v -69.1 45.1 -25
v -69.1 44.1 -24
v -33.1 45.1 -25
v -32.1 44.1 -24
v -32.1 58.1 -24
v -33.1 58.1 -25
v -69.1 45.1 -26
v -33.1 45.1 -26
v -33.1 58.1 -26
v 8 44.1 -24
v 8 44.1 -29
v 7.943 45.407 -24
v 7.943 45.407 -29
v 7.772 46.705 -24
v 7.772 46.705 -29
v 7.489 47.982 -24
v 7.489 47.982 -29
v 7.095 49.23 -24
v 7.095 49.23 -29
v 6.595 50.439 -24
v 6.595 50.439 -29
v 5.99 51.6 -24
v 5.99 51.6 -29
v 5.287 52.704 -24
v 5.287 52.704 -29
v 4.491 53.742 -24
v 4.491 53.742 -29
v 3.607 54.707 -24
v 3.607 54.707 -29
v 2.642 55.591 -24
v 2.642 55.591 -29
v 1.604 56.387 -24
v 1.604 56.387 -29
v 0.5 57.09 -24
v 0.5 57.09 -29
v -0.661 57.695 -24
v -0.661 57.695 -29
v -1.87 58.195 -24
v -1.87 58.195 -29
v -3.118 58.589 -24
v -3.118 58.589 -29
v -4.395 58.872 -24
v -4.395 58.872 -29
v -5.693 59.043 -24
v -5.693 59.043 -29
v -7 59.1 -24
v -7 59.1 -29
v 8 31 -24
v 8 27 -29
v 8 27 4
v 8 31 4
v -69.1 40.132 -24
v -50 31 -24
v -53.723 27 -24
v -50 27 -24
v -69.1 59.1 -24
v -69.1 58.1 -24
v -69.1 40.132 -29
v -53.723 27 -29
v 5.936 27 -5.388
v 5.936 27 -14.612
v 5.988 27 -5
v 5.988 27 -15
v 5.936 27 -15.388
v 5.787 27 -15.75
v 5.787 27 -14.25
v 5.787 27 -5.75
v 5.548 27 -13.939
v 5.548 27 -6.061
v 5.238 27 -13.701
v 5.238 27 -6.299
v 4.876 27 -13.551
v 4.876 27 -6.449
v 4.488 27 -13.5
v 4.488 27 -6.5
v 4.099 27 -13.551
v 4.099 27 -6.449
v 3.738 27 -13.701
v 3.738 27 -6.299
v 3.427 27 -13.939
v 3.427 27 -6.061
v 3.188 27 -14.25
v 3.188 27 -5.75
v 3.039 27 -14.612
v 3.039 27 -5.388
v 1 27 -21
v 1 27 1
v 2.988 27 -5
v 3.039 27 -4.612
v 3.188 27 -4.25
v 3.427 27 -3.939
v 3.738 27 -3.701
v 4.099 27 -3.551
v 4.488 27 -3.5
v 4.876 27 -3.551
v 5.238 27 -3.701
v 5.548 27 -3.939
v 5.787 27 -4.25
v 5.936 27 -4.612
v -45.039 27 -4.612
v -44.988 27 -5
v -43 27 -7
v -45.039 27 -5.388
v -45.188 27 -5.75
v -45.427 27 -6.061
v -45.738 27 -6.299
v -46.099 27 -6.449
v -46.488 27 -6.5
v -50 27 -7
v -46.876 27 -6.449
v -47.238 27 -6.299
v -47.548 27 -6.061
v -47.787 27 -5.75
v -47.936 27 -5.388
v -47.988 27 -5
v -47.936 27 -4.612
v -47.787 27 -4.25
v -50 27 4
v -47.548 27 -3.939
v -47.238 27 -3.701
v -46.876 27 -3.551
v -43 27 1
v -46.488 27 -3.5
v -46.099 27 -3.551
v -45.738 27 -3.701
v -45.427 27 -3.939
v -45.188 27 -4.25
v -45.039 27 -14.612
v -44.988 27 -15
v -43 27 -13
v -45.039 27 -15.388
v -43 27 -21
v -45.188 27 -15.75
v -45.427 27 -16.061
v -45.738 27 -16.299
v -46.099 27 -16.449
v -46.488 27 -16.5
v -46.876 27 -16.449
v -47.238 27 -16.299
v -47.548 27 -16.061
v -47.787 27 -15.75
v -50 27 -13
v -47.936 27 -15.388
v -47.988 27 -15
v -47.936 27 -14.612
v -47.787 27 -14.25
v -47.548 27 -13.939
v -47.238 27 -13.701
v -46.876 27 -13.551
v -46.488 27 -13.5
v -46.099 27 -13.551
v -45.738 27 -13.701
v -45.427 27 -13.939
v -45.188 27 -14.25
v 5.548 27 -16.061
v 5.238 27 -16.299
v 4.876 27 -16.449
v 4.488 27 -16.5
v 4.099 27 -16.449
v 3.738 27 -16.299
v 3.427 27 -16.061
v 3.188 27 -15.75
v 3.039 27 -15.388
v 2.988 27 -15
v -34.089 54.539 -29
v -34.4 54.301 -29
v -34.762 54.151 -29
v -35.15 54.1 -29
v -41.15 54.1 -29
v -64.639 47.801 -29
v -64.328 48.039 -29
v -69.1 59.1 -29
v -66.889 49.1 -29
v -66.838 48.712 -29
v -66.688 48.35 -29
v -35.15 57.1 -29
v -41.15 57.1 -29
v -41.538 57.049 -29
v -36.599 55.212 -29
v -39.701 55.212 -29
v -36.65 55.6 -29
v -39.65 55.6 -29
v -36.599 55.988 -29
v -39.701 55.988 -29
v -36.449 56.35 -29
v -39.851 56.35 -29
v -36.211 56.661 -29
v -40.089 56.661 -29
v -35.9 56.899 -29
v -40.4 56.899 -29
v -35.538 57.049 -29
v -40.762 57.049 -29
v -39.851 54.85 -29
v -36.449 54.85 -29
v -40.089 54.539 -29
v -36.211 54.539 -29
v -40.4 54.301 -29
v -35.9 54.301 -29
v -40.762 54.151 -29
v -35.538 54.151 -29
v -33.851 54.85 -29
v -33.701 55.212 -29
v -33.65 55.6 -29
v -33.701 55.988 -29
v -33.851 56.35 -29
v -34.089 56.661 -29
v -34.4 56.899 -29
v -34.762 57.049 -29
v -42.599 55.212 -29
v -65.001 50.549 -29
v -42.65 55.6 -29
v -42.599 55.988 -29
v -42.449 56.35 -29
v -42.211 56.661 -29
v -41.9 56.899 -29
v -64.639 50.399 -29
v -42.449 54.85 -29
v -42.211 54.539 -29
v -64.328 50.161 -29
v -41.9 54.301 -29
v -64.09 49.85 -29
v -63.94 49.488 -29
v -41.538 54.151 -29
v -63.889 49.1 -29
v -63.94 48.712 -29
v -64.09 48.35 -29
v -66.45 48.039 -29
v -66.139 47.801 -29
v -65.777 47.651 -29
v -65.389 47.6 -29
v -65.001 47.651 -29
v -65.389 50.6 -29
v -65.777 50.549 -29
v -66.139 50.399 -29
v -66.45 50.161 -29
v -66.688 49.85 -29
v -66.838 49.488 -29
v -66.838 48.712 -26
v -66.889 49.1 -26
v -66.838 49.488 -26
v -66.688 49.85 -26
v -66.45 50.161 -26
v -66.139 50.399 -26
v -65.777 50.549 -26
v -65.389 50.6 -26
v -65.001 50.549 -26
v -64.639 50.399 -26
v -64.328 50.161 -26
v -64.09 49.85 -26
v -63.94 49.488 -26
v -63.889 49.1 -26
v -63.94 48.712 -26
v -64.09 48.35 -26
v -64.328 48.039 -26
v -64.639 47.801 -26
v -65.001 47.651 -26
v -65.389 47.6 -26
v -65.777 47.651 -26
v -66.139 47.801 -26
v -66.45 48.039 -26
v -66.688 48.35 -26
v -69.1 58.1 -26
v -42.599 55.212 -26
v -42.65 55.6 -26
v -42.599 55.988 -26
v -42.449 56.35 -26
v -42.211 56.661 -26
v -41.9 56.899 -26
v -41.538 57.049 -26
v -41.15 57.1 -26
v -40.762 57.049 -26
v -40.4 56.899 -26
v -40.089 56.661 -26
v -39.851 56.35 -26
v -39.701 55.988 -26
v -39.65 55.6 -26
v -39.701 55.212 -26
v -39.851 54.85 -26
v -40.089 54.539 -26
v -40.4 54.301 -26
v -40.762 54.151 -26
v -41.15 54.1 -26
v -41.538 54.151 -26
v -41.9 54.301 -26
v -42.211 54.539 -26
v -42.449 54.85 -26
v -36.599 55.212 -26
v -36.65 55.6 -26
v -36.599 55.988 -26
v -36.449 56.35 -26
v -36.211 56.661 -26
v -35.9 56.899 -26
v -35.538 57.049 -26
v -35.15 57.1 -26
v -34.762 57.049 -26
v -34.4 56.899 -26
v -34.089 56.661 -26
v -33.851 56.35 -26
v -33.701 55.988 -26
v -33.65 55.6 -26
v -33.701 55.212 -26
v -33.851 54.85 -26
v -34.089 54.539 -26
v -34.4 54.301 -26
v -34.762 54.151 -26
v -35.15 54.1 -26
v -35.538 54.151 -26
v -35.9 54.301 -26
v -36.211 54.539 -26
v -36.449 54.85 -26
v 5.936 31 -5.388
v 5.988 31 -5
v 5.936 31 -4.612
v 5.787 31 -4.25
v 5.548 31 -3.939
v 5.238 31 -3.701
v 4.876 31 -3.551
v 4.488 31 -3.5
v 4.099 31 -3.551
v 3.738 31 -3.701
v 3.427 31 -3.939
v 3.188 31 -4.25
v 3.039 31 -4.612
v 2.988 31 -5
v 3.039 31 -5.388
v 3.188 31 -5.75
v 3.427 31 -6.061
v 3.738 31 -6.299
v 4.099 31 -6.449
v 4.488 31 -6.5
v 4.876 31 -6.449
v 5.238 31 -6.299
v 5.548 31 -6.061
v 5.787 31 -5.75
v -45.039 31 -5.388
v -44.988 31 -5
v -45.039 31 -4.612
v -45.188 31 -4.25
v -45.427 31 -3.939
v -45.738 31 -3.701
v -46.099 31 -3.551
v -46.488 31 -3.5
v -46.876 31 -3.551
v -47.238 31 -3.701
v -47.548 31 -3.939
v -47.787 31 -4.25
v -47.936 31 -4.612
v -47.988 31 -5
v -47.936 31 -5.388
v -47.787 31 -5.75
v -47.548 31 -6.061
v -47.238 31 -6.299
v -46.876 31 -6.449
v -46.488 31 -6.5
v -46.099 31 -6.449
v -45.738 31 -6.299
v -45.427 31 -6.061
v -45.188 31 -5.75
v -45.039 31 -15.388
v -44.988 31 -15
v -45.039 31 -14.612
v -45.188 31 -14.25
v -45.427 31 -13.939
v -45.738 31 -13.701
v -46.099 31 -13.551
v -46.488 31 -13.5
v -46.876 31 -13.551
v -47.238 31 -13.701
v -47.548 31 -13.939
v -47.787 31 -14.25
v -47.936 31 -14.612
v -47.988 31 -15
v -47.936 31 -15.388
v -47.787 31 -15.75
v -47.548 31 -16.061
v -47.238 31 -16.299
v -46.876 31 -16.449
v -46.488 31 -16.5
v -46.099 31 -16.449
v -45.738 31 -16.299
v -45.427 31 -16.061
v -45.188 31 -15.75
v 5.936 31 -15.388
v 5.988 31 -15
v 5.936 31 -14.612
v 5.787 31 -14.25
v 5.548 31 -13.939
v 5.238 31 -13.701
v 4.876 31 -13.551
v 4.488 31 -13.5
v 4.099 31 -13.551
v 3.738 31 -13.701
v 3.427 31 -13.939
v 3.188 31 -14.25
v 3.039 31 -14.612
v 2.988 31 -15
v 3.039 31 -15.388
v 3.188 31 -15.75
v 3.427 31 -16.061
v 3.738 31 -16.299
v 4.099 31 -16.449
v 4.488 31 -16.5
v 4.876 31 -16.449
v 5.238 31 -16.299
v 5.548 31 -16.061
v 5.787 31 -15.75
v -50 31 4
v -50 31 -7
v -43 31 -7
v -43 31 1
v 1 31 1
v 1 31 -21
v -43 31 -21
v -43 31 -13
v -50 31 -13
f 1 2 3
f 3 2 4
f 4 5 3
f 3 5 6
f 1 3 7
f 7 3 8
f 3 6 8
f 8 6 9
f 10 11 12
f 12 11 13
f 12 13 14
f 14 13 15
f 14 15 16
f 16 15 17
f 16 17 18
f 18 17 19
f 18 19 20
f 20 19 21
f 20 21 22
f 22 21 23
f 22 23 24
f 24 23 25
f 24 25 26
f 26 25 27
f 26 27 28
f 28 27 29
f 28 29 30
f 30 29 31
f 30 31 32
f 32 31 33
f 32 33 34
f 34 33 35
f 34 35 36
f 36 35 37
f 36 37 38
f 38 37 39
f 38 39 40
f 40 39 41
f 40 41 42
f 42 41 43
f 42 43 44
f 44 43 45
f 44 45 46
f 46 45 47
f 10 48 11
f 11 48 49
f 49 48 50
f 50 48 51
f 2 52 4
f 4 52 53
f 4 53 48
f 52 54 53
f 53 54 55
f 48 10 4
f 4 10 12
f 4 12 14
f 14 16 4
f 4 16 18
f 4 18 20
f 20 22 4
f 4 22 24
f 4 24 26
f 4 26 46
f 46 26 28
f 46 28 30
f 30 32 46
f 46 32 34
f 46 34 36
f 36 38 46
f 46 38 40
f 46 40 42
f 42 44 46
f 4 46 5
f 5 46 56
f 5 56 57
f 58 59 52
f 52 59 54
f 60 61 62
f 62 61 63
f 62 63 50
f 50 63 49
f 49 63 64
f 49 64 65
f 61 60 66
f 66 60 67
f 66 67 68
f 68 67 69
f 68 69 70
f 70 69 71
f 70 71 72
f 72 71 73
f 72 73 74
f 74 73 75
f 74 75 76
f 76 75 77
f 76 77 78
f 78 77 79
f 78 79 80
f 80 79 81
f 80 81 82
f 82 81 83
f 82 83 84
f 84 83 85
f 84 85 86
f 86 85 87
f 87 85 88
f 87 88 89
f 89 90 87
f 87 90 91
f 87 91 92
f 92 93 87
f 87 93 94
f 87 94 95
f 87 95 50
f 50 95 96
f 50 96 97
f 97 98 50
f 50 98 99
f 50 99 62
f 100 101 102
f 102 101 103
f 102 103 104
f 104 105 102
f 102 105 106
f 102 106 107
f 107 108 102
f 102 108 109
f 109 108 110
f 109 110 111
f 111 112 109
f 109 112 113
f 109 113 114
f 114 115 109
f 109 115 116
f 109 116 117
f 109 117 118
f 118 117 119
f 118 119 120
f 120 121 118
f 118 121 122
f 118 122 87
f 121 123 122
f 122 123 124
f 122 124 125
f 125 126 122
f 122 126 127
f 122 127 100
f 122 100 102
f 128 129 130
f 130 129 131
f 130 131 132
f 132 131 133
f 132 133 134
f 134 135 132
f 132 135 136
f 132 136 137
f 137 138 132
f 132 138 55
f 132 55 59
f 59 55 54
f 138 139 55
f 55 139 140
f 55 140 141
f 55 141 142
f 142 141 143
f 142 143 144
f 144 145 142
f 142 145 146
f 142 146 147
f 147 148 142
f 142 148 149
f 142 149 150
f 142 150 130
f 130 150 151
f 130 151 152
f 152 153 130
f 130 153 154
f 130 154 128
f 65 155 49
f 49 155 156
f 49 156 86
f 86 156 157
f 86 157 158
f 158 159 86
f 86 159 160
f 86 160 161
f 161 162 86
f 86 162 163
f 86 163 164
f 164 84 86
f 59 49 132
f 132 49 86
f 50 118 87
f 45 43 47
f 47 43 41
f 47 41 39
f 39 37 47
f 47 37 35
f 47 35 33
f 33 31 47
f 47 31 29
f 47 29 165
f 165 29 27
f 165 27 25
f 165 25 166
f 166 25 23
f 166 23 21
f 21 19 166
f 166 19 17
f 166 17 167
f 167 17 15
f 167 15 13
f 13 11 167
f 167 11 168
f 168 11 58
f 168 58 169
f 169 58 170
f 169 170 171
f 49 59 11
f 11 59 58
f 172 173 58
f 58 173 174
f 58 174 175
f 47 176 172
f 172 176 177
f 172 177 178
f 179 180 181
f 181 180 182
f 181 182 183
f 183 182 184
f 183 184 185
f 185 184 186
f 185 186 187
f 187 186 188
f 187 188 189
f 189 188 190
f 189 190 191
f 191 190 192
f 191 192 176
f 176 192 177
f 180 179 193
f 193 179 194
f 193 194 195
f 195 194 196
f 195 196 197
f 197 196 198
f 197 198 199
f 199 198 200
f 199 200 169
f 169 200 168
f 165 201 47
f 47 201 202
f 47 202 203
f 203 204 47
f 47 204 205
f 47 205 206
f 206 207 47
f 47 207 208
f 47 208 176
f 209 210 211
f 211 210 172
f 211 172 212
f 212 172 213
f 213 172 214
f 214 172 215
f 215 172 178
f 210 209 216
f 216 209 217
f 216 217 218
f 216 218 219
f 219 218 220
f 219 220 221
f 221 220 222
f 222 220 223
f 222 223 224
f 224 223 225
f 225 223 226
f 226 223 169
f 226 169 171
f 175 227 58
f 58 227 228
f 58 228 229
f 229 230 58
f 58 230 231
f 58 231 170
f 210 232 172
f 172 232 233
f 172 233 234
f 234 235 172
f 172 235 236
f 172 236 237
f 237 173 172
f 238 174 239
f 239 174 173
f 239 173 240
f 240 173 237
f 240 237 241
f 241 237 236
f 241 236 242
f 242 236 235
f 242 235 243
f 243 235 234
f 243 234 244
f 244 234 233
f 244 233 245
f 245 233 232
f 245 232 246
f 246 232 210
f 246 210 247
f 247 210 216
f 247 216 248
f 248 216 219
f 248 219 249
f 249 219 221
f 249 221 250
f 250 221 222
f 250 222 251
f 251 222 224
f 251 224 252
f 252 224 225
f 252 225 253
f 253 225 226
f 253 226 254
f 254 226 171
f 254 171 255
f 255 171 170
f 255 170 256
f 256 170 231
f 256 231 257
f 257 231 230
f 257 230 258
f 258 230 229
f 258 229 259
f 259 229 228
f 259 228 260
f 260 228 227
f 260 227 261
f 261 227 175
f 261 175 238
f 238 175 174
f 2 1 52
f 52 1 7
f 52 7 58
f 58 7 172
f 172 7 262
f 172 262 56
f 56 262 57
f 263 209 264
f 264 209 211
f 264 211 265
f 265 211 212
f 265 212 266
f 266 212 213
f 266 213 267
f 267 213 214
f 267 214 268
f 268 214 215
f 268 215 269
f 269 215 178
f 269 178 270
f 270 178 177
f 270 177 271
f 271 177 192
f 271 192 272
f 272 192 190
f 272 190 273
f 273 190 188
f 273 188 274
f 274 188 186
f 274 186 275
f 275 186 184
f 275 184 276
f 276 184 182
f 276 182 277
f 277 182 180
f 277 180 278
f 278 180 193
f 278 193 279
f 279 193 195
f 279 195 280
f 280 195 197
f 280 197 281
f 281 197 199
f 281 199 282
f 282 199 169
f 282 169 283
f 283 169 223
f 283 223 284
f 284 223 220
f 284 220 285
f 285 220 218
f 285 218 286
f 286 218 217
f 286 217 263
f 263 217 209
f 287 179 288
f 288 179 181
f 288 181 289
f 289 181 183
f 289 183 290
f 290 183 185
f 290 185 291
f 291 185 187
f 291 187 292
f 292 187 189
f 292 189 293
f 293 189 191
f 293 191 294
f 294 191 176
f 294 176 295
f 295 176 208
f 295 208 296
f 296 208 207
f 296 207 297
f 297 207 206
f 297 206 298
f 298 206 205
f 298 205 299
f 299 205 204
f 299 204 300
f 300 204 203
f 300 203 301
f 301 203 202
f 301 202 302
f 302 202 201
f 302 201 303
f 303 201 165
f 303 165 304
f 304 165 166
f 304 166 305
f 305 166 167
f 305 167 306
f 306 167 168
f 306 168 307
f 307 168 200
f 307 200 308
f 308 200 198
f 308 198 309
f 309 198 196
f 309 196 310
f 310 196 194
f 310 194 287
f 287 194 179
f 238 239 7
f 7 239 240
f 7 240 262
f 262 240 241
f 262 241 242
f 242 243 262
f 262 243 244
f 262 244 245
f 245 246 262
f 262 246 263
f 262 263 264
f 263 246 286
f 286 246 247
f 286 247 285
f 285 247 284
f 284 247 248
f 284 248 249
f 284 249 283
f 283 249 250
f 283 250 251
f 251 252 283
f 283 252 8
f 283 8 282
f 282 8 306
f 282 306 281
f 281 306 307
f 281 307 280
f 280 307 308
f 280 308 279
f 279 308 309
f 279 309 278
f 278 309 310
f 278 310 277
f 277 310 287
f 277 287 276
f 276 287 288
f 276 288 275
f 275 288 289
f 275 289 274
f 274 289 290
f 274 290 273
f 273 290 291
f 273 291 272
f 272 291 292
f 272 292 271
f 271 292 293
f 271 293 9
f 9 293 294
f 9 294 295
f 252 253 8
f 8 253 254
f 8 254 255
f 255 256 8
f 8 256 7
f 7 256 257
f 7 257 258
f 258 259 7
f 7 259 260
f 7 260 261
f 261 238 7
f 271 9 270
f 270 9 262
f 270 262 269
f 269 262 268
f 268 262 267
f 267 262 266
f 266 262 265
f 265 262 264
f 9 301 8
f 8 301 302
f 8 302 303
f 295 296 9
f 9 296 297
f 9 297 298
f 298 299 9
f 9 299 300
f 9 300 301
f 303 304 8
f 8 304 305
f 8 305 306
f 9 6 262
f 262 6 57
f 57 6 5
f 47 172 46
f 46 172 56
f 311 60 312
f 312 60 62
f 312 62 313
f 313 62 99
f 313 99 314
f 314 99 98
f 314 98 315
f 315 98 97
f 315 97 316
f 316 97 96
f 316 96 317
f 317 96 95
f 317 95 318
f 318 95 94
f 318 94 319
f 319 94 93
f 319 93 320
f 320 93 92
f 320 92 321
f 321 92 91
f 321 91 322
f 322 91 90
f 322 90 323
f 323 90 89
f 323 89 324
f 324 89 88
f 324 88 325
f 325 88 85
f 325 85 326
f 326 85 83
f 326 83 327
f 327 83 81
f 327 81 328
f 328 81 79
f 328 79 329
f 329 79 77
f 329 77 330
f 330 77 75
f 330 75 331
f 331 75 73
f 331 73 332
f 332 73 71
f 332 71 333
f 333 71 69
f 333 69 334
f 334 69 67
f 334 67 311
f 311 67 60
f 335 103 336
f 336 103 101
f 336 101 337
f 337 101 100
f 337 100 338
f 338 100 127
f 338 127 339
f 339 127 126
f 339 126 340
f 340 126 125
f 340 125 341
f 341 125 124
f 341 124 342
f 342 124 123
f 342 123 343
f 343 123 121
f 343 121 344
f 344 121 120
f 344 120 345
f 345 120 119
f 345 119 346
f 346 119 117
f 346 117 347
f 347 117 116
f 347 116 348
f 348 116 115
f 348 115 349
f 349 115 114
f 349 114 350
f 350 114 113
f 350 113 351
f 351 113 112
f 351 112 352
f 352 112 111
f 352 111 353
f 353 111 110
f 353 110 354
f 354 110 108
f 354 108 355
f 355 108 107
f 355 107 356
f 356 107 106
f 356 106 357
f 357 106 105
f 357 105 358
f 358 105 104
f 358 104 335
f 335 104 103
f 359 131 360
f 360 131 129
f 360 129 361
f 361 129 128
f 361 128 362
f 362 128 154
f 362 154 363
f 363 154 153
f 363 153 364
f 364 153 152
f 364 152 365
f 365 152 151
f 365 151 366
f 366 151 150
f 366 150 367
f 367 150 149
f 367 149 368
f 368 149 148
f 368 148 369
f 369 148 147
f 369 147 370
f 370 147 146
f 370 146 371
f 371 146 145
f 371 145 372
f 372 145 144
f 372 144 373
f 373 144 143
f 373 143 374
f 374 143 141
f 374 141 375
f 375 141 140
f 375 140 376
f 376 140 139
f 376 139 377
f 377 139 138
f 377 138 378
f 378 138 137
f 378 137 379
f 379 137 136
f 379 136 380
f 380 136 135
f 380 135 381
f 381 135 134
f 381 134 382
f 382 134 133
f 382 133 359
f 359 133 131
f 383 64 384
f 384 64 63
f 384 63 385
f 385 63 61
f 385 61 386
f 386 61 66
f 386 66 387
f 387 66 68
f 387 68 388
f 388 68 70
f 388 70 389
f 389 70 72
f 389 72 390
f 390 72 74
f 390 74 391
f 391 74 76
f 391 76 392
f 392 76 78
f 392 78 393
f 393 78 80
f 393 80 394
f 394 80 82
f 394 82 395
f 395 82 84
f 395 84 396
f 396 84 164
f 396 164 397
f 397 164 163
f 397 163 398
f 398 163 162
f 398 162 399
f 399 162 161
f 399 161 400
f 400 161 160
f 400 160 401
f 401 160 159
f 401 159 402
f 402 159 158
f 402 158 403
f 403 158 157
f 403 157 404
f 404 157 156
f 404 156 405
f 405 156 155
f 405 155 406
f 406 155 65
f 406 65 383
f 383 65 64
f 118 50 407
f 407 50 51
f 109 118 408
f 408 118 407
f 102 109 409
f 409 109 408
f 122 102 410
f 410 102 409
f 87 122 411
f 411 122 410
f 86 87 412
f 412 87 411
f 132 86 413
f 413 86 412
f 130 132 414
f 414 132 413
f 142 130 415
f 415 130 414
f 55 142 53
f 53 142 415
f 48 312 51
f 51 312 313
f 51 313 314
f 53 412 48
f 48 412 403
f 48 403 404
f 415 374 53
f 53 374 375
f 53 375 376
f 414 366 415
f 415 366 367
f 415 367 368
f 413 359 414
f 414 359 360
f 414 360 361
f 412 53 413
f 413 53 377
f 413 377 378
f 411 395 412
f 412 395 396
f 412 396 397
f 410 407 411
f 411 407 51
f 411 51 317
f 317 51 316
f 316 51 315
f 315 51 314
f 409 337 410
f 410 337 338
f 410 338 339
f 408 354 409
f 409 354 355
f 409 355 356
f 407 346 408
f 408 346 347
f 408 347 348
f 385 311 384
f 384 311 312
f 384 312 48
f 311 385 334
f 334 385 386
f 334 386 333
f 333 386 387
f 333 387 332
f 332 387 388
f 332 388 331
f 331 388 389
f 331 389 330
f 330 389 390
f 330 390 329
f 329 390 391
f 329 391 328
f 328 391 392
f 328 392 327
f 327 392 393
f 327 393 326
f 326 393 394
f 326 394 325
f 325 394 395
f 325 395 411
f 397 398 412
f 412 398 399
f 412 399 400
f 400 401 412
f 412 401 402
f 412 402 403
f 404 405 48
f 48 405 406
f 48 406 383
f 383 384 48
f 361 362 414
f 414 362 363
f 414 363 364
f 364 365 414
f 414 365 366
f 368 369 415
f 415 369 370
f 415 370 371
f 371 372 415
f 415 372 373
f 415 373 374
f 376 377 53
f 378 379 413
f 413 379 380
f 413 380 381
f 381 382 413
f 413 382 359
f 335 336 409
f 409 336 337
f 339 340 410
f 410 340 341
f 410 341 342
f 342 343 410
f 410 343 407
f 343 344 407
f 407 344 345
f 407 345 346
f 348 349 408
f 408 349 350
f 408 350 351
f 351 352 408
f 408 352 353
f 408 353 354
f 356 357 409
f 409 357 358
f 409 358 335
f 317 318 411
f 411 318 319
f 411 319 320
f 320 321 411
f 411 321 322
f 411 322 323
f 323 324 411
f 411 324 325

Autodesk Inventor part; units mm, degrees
ref_plane "YZ Plane" through (0, 0, 0) normal (1, 0, 0) x (0, 1, 0)
ref_plane "XZ Plane" through (0, 0, 0) normal (0, 1, 0) x (-1, 0, 0)
ref_plane "XY Plane" through (0, 0, 0) normal (0, 0, 1) x (1, 0, 0)
ref_plane "Plano de trabajo1" through (0, 27, 0) normal (0, 1, 0) x (1, 0, 0)
sketch "Boceto2" plane through (0, 27, 0) normal (0, 1, 0) x (1, 0, 0)
  line L0 (0, 10) -> (0, 15)
  line L1 (0, 15) -> (11.8906, 15)
  line L2 (0, 10) -> (0, 5)
  line L3 (0, 5) -> (15.0689, 5)
  line L4 (0, 5) -> (7, 5)
  line L5 (7, 5) -> (7, 15)
  line L6 (6.4875, 15) -> (4.4875, 15)
  circle A0 centre (4.4875, 15) radius 1.5
  circle A1 centre (4.4875, 5) radius 1.5
  line L7 (-42, 6) -> (-42, 0) projected
  line L8 (0, 0) -> (-42, 0)
  line L9 (-42, 0) -> (0, 0) projected
  line L10 (-21, 0) -> (-21, 36.5425)
  circle A2 centre (-46.4875, 15) radius 1.5
  circle A3 centre (-46.4875, 5) radius 1.5
  line L11 (0, 0) -> (1, 0)
  line L12 (1, 0) -> (8, 0)
  line L13 (8, 0) -> (8, 20)
  line L14 (8, 20) -> (1, 20)
  line L15 (1, 20) -> (1, 0)
  line L16 (-42, 10) -> (-42, 15)
  line L17 (-42, 15) -> (-53.8906, 15)
  line L18 (-42, 10) -> (-42, 5)
  line L19 (-42, 5) -> (-49, 5)
  line L20 (-49, 5) -> (-49, 15)
  line L21 (-48.4875, 15) -> (-46.4875, 15)
  circle A4 centre (-46.4875, 15) radius 1.5
  circle A5 centre (-46.4875, 5) radius 1.5
  line L22 (-42, 0) -> (-43, 0)
  line L23 (-43, 0) -> (-50, 0)
  line L24 (-50, 0) -> (-50, 20)
  line L25 (-50, 20) -> (-43, 20)
  line L26 (-43, 20) -> (-43, 0)
  line L27 (-43, 20) -> (-43, 21)
  line L28 (-43, 21) -> (1, 21)
  line L29 (1, 21) -> (1, 20)
  line L30 (-43, 0) -> (-43, -1)
  line L31 (-43, -1) -> (1, -1)
  line L32 (1, -1) -> (1, 0)
  line L33 (-50, 20) -> (-50, 24)
  line L34 (-50, 24) -> (8, 24)
  line L35 (-50, 0) -> (-50, -4)
  line L36 (-50, -4) -> (8, -4)
  line L37 (8, -4) -> (8, 0)
  line L38 (8, 24) -> (8, 19.2948)
  line L39 (-42, 10) -> (-42, 7)
  line L40 (-42, 7) -> (-58.0956, 7)
  line L41 (-51, 14) -> (-51, 6) projected
  line L42 (-42, 10) -> (-42, 13)
  line L43 (-42, 13) -> (-56.402, 13)
  point P0 (0, 20)
  point P1 (-42, 20)
  point P2 (-50, 13)
  point P3 (-43, 13)
  point P4 (-43, 7)
  point P5 (-50, 7)
  dimension "d8" = 5
  dimension "d9" = 5
  dimension "d10" = 7
  dimension "d11" = 2
  dimension "d12" = 3
  dimension "d13" = 3
  dimension "d14" = 1
  dimension "d15" = 7
  dimension "d16" = 1
  dimension "d17" = 1
  dimension "d18" = 4
  dimension "d19" = 4
  dimension "d22" = 3
  dimension "d23" = 3
extrude "Extrusión2" add sketch "Boceto2" along normal blind 4 contours L15 L14 L13 L1 A0 | L1 A0 L5 L3 A1 L15 | L3 A1 L13 L12 L15 | L29 L28 L10 L34 L38 L14 | L12 L37 L36 L35 L23 L30 L31 L32 | L28 L27 L25 L33 L34 L10 | L5 L1 L13 L3 | L23 L24 L40 L20 L19 A3 L26 | L26 L17 A2 L24 L25 | L19 A3 L20 L40 L26 | L26 L43 L20 L17 A2 | L17 L20 L43 L24
sketch "Boceto3" plane through (8, 27, -24) normal (0, 0, -1) x (-1, 0, 0)
  point P0 (8, -27)
sketch "Boceto4" plane through (8, 27, -24) normal (0, 0, -1) x (-1, 0, 0)
  line L0 (0, 4) -> (58, 4) projected
  line L1 (58, 4) -> (58, 18.1)
  line L2 (58, 18.1) -> (0, 18.1)
  line L3 (0, 18.1) -> (0, 4)
  line L4 (58, 18.1) -> (58, 22.1)
  line L5 (58, 18.1) -> (58, 32.1)
  line L6 (58, 32.1) -> (0, 32.1)
  line L7 (0, 32.1) -> (0, 18.1)
  line L8 (58, 18.1) -> (58, 28.6)
  line L9 (58, 28.6) -> (36.9156, 28.6)
  line L10 (8, -6.3468) -> (8, 18.1)
  line L11 (8, 18.1) -> (18.1, 18.1)
  line L12 (18.1, 18.1) -> (41.1, 18.1)
  line L13 (41.1, 18.1) -> (51.1, 18.1)
  line L14 (51.1, 18.1) -> (51.1, 26.6579)
  line L15 (51.1, 26.6579) -> (51.1, 31.1823)
  line L16 (51.1, 18.1) -> (51.1, 18)
  line L17 (51.1, 18.1) -> (51.2, 18.1)
  line L18 (51.2, 18.1) -> (51.2, 31.1)
  line L19 (51.2, 31.1) -> (41.1, 31.1)
  line L20 (41.1, 31.1) -> (41.1, 18.1)
  line L21 (51.2, 28.6) -> (49.2, 28.6)
  line L22 (41.1, 28.6) -> (43.1, 28.6)
  line L23 (43.1, 28.6) -> (43.15, 28.6)
  circle A0 centre (43.15, 28.6) radius 1.5
  line L24 (43.15, 28.6) -> (49.15, 28.6)
  circle A1 centre (49.15, 28.6) radius 1.5
  point P0 (8, -27)
  point P1 (8, 4)
  dimension "d24" = 14.1
  dimension "d25" = 4
  dimension "d26" = 14
  dimension "d27" = 10.5
  dimension "d28" = 10.1
  dimension "d29" = 23
  dimension "d30" = 10
  dimension "d31" = 0.1
  dimension "d32" = 0.1
  dimension "d33" = 13
  dimension "d34" = 10.1
  dimension "d35" = 2
  dimension "d36" = 2
  dimension "d38" = 0.05
  dimension "d39" = 3
  dimension "d40" = 6
  dimension "d41" = 3
extrude "Extrusión3" add sketch "Boceto4" along normal blind 5 contours L3 L2 L10 L0 | L10 L2 L1 L0 | L7 L6 L5 L9 L18 L19 L20 L2 | L2 L18 L9 L5 L4
sketch "Boceto5" plane through (8, 27, -29) normal (0, 0, -1) x (-1, 0, 0)
  line L0 (51.2, 18.1) -> (41.1, 18.1) projected
  line L1 (51.2, 18.1) -> (51.2, 28.6)
  line L2 (51.2, 31.1) -> (51.2, 18.1) projected
  line L3 (51.2, 28.6) -> (49.15, 28.6)
  circle A0 centre (49.15, 28.6) radius 1.5
  line L4 (49.15, 28.6) -> (43.15, 28.6)
  circle A1 centre (43.15, 28.6) radius 1.5
  line L5 (41.1, 18.1) -> (51.2, 18.1)
  line L6 (51.2, 18.1) -> (51.2, 31.1)
  line L7 (51.2, 31.1) -> (41.1, 31.1)
  line L8 (41.1, 31.1) -> (41.1, 18.1)
  point P0 (8, -27)
  dimension "d44" = 10.5
  dimension "d45" = 2.05
  dimension "d46" = 3
  dimension "d47" = 6
  dimension "d48" = 3
extrude "Extrusión4" add sketch "Boceto5" against normal blind 3
sketch "Boceto6" plane through (-50, 31, -24) normal (0, -1, 0) x (1, 0, 0)
  line L0 (58, -5) -> (0, -5) projected
  line L1 (0, 0) -> (58, 0)
  line L2 (58, 0) -> (58, -5)
  line L3 (58, -5) -> (0, -5)
  line L4 (0, -5) -> (0, 0)
  point P0 (50, 24)
extrude "Extrusión5" add sketch "Boceto6" along normal blind 4
sketch "Boceto7" plane through (8, 27, -24) normal (0, 0, 1) x (1, 0, 0)
  line L0 (-51.2, 31.1) -> (-72.2407, 31.1)
  line L1 (-51.2, 31.1) -> (-51.2, 18.1) projected
  line L2 (-51.2, 18.1) -> (-72.8631, 18.1)
  line L3 (-72.8631, 18.1) -> (-72.2407, 31.1)
  point P0 (-8, -27)
extrude "Extrusión6" cut sketch "Boceto7" against normal blind 2
sketch "Boceto8" plane through (-50, 27, -13) normal (-1, 0, 0) x (0, 0, 1)
  line L0 (-11, 31.1) -> (-11, 32.1) projected
  line L1 (-11, 32.1) -> (-11, 31.1)
  line L2 (-11, 31.1) -> (-13, 31.1)
  line L3 (-13, 18.1) -> (-13, 31.1) projected
  line L4 (-13, 31.1) -> (-13, 18.1)
  line L5 (-11, 18.1) -> (-13, 18.1) projected
  line L6 (-13, 18.1) -> (-11, 18.1)
  line L7 (-11, 18.1) -> (-11, 0.1456)
  line L8 (-11, 0.1456) -> (-11, 0)
  line L9 (0, 0) -> (-16, 0) projected
  line L10 (-16, 32.1) -> (-16, 0) projected
  line L11 (-11, 0) -> (-16, 0)
  line L12 (-16, 0) -> (-16, 32.1)
  line L13 (-11, 32.1) -> (-16, 32.1) projected
  line L14 (-16, 32.1) -> (-11, 32.1)
  point P0 (13, -27)
  point P1 (-13, 31.1)
extrude "Extrusión7" add sketch "Boceto8" along normal blind 19.1
sketch "Boceto10" plane through (8, 27, -24) normal (0, 0, 1) x (1, 0, 0)
  line L0 (-77.1, 18.1) -> (-73.389, 18.1)
  line L1 (-77.1, 18.1) -> (-41.1, 18.1) projected
  line L2 (-73.389, 18.1) -> (-73.389, 22.1)
  circle A0 centre (-73.389, 22.1) radius 1.5
  point P0 (-8, -27)
  dimension "d62" = 3.711
  dimension "d63" = 4
  dimension "d64" = 3
extrude "Extrusión9" cut sketch "Boceto10" against normal blind 19.1
sketch "Boceto11" plane through (8, 27, -24) normal (0, 0, 1) x (1, 0, 0)
  line L0 (-58, 0) -> (-77.1, 0) projected
  line L1 (-58, 0) -> (-77.1, 13.1321)
  line L2 (-77.1, 0) -> (-77.1, 18.1) projected
  line L3 (-58, 0) -> (-77.1, 0)
  line L4 (-77.1, 0) -> (-77.1, 13.1321)
  line L5 (-61.7227, 0) -> (-77.1, 13.1321)
  line L6 (-61.7227, 0) -> (-77.1, 0)
  point P0 (-8, -27)
extrude "Extrusión10" cut sketch "Boceto11" against normal blind 19.1 contours L0 L2 L5
fillet "Empalme1" radius 15 1 edges at (8, 59.1, -26.5)
chamfer "Chaflán1" distance 1 angle 45 2 edges at (-51.1, 45.1, -24) (-33.1, 51.6, -24)
properties part number "servov2"
